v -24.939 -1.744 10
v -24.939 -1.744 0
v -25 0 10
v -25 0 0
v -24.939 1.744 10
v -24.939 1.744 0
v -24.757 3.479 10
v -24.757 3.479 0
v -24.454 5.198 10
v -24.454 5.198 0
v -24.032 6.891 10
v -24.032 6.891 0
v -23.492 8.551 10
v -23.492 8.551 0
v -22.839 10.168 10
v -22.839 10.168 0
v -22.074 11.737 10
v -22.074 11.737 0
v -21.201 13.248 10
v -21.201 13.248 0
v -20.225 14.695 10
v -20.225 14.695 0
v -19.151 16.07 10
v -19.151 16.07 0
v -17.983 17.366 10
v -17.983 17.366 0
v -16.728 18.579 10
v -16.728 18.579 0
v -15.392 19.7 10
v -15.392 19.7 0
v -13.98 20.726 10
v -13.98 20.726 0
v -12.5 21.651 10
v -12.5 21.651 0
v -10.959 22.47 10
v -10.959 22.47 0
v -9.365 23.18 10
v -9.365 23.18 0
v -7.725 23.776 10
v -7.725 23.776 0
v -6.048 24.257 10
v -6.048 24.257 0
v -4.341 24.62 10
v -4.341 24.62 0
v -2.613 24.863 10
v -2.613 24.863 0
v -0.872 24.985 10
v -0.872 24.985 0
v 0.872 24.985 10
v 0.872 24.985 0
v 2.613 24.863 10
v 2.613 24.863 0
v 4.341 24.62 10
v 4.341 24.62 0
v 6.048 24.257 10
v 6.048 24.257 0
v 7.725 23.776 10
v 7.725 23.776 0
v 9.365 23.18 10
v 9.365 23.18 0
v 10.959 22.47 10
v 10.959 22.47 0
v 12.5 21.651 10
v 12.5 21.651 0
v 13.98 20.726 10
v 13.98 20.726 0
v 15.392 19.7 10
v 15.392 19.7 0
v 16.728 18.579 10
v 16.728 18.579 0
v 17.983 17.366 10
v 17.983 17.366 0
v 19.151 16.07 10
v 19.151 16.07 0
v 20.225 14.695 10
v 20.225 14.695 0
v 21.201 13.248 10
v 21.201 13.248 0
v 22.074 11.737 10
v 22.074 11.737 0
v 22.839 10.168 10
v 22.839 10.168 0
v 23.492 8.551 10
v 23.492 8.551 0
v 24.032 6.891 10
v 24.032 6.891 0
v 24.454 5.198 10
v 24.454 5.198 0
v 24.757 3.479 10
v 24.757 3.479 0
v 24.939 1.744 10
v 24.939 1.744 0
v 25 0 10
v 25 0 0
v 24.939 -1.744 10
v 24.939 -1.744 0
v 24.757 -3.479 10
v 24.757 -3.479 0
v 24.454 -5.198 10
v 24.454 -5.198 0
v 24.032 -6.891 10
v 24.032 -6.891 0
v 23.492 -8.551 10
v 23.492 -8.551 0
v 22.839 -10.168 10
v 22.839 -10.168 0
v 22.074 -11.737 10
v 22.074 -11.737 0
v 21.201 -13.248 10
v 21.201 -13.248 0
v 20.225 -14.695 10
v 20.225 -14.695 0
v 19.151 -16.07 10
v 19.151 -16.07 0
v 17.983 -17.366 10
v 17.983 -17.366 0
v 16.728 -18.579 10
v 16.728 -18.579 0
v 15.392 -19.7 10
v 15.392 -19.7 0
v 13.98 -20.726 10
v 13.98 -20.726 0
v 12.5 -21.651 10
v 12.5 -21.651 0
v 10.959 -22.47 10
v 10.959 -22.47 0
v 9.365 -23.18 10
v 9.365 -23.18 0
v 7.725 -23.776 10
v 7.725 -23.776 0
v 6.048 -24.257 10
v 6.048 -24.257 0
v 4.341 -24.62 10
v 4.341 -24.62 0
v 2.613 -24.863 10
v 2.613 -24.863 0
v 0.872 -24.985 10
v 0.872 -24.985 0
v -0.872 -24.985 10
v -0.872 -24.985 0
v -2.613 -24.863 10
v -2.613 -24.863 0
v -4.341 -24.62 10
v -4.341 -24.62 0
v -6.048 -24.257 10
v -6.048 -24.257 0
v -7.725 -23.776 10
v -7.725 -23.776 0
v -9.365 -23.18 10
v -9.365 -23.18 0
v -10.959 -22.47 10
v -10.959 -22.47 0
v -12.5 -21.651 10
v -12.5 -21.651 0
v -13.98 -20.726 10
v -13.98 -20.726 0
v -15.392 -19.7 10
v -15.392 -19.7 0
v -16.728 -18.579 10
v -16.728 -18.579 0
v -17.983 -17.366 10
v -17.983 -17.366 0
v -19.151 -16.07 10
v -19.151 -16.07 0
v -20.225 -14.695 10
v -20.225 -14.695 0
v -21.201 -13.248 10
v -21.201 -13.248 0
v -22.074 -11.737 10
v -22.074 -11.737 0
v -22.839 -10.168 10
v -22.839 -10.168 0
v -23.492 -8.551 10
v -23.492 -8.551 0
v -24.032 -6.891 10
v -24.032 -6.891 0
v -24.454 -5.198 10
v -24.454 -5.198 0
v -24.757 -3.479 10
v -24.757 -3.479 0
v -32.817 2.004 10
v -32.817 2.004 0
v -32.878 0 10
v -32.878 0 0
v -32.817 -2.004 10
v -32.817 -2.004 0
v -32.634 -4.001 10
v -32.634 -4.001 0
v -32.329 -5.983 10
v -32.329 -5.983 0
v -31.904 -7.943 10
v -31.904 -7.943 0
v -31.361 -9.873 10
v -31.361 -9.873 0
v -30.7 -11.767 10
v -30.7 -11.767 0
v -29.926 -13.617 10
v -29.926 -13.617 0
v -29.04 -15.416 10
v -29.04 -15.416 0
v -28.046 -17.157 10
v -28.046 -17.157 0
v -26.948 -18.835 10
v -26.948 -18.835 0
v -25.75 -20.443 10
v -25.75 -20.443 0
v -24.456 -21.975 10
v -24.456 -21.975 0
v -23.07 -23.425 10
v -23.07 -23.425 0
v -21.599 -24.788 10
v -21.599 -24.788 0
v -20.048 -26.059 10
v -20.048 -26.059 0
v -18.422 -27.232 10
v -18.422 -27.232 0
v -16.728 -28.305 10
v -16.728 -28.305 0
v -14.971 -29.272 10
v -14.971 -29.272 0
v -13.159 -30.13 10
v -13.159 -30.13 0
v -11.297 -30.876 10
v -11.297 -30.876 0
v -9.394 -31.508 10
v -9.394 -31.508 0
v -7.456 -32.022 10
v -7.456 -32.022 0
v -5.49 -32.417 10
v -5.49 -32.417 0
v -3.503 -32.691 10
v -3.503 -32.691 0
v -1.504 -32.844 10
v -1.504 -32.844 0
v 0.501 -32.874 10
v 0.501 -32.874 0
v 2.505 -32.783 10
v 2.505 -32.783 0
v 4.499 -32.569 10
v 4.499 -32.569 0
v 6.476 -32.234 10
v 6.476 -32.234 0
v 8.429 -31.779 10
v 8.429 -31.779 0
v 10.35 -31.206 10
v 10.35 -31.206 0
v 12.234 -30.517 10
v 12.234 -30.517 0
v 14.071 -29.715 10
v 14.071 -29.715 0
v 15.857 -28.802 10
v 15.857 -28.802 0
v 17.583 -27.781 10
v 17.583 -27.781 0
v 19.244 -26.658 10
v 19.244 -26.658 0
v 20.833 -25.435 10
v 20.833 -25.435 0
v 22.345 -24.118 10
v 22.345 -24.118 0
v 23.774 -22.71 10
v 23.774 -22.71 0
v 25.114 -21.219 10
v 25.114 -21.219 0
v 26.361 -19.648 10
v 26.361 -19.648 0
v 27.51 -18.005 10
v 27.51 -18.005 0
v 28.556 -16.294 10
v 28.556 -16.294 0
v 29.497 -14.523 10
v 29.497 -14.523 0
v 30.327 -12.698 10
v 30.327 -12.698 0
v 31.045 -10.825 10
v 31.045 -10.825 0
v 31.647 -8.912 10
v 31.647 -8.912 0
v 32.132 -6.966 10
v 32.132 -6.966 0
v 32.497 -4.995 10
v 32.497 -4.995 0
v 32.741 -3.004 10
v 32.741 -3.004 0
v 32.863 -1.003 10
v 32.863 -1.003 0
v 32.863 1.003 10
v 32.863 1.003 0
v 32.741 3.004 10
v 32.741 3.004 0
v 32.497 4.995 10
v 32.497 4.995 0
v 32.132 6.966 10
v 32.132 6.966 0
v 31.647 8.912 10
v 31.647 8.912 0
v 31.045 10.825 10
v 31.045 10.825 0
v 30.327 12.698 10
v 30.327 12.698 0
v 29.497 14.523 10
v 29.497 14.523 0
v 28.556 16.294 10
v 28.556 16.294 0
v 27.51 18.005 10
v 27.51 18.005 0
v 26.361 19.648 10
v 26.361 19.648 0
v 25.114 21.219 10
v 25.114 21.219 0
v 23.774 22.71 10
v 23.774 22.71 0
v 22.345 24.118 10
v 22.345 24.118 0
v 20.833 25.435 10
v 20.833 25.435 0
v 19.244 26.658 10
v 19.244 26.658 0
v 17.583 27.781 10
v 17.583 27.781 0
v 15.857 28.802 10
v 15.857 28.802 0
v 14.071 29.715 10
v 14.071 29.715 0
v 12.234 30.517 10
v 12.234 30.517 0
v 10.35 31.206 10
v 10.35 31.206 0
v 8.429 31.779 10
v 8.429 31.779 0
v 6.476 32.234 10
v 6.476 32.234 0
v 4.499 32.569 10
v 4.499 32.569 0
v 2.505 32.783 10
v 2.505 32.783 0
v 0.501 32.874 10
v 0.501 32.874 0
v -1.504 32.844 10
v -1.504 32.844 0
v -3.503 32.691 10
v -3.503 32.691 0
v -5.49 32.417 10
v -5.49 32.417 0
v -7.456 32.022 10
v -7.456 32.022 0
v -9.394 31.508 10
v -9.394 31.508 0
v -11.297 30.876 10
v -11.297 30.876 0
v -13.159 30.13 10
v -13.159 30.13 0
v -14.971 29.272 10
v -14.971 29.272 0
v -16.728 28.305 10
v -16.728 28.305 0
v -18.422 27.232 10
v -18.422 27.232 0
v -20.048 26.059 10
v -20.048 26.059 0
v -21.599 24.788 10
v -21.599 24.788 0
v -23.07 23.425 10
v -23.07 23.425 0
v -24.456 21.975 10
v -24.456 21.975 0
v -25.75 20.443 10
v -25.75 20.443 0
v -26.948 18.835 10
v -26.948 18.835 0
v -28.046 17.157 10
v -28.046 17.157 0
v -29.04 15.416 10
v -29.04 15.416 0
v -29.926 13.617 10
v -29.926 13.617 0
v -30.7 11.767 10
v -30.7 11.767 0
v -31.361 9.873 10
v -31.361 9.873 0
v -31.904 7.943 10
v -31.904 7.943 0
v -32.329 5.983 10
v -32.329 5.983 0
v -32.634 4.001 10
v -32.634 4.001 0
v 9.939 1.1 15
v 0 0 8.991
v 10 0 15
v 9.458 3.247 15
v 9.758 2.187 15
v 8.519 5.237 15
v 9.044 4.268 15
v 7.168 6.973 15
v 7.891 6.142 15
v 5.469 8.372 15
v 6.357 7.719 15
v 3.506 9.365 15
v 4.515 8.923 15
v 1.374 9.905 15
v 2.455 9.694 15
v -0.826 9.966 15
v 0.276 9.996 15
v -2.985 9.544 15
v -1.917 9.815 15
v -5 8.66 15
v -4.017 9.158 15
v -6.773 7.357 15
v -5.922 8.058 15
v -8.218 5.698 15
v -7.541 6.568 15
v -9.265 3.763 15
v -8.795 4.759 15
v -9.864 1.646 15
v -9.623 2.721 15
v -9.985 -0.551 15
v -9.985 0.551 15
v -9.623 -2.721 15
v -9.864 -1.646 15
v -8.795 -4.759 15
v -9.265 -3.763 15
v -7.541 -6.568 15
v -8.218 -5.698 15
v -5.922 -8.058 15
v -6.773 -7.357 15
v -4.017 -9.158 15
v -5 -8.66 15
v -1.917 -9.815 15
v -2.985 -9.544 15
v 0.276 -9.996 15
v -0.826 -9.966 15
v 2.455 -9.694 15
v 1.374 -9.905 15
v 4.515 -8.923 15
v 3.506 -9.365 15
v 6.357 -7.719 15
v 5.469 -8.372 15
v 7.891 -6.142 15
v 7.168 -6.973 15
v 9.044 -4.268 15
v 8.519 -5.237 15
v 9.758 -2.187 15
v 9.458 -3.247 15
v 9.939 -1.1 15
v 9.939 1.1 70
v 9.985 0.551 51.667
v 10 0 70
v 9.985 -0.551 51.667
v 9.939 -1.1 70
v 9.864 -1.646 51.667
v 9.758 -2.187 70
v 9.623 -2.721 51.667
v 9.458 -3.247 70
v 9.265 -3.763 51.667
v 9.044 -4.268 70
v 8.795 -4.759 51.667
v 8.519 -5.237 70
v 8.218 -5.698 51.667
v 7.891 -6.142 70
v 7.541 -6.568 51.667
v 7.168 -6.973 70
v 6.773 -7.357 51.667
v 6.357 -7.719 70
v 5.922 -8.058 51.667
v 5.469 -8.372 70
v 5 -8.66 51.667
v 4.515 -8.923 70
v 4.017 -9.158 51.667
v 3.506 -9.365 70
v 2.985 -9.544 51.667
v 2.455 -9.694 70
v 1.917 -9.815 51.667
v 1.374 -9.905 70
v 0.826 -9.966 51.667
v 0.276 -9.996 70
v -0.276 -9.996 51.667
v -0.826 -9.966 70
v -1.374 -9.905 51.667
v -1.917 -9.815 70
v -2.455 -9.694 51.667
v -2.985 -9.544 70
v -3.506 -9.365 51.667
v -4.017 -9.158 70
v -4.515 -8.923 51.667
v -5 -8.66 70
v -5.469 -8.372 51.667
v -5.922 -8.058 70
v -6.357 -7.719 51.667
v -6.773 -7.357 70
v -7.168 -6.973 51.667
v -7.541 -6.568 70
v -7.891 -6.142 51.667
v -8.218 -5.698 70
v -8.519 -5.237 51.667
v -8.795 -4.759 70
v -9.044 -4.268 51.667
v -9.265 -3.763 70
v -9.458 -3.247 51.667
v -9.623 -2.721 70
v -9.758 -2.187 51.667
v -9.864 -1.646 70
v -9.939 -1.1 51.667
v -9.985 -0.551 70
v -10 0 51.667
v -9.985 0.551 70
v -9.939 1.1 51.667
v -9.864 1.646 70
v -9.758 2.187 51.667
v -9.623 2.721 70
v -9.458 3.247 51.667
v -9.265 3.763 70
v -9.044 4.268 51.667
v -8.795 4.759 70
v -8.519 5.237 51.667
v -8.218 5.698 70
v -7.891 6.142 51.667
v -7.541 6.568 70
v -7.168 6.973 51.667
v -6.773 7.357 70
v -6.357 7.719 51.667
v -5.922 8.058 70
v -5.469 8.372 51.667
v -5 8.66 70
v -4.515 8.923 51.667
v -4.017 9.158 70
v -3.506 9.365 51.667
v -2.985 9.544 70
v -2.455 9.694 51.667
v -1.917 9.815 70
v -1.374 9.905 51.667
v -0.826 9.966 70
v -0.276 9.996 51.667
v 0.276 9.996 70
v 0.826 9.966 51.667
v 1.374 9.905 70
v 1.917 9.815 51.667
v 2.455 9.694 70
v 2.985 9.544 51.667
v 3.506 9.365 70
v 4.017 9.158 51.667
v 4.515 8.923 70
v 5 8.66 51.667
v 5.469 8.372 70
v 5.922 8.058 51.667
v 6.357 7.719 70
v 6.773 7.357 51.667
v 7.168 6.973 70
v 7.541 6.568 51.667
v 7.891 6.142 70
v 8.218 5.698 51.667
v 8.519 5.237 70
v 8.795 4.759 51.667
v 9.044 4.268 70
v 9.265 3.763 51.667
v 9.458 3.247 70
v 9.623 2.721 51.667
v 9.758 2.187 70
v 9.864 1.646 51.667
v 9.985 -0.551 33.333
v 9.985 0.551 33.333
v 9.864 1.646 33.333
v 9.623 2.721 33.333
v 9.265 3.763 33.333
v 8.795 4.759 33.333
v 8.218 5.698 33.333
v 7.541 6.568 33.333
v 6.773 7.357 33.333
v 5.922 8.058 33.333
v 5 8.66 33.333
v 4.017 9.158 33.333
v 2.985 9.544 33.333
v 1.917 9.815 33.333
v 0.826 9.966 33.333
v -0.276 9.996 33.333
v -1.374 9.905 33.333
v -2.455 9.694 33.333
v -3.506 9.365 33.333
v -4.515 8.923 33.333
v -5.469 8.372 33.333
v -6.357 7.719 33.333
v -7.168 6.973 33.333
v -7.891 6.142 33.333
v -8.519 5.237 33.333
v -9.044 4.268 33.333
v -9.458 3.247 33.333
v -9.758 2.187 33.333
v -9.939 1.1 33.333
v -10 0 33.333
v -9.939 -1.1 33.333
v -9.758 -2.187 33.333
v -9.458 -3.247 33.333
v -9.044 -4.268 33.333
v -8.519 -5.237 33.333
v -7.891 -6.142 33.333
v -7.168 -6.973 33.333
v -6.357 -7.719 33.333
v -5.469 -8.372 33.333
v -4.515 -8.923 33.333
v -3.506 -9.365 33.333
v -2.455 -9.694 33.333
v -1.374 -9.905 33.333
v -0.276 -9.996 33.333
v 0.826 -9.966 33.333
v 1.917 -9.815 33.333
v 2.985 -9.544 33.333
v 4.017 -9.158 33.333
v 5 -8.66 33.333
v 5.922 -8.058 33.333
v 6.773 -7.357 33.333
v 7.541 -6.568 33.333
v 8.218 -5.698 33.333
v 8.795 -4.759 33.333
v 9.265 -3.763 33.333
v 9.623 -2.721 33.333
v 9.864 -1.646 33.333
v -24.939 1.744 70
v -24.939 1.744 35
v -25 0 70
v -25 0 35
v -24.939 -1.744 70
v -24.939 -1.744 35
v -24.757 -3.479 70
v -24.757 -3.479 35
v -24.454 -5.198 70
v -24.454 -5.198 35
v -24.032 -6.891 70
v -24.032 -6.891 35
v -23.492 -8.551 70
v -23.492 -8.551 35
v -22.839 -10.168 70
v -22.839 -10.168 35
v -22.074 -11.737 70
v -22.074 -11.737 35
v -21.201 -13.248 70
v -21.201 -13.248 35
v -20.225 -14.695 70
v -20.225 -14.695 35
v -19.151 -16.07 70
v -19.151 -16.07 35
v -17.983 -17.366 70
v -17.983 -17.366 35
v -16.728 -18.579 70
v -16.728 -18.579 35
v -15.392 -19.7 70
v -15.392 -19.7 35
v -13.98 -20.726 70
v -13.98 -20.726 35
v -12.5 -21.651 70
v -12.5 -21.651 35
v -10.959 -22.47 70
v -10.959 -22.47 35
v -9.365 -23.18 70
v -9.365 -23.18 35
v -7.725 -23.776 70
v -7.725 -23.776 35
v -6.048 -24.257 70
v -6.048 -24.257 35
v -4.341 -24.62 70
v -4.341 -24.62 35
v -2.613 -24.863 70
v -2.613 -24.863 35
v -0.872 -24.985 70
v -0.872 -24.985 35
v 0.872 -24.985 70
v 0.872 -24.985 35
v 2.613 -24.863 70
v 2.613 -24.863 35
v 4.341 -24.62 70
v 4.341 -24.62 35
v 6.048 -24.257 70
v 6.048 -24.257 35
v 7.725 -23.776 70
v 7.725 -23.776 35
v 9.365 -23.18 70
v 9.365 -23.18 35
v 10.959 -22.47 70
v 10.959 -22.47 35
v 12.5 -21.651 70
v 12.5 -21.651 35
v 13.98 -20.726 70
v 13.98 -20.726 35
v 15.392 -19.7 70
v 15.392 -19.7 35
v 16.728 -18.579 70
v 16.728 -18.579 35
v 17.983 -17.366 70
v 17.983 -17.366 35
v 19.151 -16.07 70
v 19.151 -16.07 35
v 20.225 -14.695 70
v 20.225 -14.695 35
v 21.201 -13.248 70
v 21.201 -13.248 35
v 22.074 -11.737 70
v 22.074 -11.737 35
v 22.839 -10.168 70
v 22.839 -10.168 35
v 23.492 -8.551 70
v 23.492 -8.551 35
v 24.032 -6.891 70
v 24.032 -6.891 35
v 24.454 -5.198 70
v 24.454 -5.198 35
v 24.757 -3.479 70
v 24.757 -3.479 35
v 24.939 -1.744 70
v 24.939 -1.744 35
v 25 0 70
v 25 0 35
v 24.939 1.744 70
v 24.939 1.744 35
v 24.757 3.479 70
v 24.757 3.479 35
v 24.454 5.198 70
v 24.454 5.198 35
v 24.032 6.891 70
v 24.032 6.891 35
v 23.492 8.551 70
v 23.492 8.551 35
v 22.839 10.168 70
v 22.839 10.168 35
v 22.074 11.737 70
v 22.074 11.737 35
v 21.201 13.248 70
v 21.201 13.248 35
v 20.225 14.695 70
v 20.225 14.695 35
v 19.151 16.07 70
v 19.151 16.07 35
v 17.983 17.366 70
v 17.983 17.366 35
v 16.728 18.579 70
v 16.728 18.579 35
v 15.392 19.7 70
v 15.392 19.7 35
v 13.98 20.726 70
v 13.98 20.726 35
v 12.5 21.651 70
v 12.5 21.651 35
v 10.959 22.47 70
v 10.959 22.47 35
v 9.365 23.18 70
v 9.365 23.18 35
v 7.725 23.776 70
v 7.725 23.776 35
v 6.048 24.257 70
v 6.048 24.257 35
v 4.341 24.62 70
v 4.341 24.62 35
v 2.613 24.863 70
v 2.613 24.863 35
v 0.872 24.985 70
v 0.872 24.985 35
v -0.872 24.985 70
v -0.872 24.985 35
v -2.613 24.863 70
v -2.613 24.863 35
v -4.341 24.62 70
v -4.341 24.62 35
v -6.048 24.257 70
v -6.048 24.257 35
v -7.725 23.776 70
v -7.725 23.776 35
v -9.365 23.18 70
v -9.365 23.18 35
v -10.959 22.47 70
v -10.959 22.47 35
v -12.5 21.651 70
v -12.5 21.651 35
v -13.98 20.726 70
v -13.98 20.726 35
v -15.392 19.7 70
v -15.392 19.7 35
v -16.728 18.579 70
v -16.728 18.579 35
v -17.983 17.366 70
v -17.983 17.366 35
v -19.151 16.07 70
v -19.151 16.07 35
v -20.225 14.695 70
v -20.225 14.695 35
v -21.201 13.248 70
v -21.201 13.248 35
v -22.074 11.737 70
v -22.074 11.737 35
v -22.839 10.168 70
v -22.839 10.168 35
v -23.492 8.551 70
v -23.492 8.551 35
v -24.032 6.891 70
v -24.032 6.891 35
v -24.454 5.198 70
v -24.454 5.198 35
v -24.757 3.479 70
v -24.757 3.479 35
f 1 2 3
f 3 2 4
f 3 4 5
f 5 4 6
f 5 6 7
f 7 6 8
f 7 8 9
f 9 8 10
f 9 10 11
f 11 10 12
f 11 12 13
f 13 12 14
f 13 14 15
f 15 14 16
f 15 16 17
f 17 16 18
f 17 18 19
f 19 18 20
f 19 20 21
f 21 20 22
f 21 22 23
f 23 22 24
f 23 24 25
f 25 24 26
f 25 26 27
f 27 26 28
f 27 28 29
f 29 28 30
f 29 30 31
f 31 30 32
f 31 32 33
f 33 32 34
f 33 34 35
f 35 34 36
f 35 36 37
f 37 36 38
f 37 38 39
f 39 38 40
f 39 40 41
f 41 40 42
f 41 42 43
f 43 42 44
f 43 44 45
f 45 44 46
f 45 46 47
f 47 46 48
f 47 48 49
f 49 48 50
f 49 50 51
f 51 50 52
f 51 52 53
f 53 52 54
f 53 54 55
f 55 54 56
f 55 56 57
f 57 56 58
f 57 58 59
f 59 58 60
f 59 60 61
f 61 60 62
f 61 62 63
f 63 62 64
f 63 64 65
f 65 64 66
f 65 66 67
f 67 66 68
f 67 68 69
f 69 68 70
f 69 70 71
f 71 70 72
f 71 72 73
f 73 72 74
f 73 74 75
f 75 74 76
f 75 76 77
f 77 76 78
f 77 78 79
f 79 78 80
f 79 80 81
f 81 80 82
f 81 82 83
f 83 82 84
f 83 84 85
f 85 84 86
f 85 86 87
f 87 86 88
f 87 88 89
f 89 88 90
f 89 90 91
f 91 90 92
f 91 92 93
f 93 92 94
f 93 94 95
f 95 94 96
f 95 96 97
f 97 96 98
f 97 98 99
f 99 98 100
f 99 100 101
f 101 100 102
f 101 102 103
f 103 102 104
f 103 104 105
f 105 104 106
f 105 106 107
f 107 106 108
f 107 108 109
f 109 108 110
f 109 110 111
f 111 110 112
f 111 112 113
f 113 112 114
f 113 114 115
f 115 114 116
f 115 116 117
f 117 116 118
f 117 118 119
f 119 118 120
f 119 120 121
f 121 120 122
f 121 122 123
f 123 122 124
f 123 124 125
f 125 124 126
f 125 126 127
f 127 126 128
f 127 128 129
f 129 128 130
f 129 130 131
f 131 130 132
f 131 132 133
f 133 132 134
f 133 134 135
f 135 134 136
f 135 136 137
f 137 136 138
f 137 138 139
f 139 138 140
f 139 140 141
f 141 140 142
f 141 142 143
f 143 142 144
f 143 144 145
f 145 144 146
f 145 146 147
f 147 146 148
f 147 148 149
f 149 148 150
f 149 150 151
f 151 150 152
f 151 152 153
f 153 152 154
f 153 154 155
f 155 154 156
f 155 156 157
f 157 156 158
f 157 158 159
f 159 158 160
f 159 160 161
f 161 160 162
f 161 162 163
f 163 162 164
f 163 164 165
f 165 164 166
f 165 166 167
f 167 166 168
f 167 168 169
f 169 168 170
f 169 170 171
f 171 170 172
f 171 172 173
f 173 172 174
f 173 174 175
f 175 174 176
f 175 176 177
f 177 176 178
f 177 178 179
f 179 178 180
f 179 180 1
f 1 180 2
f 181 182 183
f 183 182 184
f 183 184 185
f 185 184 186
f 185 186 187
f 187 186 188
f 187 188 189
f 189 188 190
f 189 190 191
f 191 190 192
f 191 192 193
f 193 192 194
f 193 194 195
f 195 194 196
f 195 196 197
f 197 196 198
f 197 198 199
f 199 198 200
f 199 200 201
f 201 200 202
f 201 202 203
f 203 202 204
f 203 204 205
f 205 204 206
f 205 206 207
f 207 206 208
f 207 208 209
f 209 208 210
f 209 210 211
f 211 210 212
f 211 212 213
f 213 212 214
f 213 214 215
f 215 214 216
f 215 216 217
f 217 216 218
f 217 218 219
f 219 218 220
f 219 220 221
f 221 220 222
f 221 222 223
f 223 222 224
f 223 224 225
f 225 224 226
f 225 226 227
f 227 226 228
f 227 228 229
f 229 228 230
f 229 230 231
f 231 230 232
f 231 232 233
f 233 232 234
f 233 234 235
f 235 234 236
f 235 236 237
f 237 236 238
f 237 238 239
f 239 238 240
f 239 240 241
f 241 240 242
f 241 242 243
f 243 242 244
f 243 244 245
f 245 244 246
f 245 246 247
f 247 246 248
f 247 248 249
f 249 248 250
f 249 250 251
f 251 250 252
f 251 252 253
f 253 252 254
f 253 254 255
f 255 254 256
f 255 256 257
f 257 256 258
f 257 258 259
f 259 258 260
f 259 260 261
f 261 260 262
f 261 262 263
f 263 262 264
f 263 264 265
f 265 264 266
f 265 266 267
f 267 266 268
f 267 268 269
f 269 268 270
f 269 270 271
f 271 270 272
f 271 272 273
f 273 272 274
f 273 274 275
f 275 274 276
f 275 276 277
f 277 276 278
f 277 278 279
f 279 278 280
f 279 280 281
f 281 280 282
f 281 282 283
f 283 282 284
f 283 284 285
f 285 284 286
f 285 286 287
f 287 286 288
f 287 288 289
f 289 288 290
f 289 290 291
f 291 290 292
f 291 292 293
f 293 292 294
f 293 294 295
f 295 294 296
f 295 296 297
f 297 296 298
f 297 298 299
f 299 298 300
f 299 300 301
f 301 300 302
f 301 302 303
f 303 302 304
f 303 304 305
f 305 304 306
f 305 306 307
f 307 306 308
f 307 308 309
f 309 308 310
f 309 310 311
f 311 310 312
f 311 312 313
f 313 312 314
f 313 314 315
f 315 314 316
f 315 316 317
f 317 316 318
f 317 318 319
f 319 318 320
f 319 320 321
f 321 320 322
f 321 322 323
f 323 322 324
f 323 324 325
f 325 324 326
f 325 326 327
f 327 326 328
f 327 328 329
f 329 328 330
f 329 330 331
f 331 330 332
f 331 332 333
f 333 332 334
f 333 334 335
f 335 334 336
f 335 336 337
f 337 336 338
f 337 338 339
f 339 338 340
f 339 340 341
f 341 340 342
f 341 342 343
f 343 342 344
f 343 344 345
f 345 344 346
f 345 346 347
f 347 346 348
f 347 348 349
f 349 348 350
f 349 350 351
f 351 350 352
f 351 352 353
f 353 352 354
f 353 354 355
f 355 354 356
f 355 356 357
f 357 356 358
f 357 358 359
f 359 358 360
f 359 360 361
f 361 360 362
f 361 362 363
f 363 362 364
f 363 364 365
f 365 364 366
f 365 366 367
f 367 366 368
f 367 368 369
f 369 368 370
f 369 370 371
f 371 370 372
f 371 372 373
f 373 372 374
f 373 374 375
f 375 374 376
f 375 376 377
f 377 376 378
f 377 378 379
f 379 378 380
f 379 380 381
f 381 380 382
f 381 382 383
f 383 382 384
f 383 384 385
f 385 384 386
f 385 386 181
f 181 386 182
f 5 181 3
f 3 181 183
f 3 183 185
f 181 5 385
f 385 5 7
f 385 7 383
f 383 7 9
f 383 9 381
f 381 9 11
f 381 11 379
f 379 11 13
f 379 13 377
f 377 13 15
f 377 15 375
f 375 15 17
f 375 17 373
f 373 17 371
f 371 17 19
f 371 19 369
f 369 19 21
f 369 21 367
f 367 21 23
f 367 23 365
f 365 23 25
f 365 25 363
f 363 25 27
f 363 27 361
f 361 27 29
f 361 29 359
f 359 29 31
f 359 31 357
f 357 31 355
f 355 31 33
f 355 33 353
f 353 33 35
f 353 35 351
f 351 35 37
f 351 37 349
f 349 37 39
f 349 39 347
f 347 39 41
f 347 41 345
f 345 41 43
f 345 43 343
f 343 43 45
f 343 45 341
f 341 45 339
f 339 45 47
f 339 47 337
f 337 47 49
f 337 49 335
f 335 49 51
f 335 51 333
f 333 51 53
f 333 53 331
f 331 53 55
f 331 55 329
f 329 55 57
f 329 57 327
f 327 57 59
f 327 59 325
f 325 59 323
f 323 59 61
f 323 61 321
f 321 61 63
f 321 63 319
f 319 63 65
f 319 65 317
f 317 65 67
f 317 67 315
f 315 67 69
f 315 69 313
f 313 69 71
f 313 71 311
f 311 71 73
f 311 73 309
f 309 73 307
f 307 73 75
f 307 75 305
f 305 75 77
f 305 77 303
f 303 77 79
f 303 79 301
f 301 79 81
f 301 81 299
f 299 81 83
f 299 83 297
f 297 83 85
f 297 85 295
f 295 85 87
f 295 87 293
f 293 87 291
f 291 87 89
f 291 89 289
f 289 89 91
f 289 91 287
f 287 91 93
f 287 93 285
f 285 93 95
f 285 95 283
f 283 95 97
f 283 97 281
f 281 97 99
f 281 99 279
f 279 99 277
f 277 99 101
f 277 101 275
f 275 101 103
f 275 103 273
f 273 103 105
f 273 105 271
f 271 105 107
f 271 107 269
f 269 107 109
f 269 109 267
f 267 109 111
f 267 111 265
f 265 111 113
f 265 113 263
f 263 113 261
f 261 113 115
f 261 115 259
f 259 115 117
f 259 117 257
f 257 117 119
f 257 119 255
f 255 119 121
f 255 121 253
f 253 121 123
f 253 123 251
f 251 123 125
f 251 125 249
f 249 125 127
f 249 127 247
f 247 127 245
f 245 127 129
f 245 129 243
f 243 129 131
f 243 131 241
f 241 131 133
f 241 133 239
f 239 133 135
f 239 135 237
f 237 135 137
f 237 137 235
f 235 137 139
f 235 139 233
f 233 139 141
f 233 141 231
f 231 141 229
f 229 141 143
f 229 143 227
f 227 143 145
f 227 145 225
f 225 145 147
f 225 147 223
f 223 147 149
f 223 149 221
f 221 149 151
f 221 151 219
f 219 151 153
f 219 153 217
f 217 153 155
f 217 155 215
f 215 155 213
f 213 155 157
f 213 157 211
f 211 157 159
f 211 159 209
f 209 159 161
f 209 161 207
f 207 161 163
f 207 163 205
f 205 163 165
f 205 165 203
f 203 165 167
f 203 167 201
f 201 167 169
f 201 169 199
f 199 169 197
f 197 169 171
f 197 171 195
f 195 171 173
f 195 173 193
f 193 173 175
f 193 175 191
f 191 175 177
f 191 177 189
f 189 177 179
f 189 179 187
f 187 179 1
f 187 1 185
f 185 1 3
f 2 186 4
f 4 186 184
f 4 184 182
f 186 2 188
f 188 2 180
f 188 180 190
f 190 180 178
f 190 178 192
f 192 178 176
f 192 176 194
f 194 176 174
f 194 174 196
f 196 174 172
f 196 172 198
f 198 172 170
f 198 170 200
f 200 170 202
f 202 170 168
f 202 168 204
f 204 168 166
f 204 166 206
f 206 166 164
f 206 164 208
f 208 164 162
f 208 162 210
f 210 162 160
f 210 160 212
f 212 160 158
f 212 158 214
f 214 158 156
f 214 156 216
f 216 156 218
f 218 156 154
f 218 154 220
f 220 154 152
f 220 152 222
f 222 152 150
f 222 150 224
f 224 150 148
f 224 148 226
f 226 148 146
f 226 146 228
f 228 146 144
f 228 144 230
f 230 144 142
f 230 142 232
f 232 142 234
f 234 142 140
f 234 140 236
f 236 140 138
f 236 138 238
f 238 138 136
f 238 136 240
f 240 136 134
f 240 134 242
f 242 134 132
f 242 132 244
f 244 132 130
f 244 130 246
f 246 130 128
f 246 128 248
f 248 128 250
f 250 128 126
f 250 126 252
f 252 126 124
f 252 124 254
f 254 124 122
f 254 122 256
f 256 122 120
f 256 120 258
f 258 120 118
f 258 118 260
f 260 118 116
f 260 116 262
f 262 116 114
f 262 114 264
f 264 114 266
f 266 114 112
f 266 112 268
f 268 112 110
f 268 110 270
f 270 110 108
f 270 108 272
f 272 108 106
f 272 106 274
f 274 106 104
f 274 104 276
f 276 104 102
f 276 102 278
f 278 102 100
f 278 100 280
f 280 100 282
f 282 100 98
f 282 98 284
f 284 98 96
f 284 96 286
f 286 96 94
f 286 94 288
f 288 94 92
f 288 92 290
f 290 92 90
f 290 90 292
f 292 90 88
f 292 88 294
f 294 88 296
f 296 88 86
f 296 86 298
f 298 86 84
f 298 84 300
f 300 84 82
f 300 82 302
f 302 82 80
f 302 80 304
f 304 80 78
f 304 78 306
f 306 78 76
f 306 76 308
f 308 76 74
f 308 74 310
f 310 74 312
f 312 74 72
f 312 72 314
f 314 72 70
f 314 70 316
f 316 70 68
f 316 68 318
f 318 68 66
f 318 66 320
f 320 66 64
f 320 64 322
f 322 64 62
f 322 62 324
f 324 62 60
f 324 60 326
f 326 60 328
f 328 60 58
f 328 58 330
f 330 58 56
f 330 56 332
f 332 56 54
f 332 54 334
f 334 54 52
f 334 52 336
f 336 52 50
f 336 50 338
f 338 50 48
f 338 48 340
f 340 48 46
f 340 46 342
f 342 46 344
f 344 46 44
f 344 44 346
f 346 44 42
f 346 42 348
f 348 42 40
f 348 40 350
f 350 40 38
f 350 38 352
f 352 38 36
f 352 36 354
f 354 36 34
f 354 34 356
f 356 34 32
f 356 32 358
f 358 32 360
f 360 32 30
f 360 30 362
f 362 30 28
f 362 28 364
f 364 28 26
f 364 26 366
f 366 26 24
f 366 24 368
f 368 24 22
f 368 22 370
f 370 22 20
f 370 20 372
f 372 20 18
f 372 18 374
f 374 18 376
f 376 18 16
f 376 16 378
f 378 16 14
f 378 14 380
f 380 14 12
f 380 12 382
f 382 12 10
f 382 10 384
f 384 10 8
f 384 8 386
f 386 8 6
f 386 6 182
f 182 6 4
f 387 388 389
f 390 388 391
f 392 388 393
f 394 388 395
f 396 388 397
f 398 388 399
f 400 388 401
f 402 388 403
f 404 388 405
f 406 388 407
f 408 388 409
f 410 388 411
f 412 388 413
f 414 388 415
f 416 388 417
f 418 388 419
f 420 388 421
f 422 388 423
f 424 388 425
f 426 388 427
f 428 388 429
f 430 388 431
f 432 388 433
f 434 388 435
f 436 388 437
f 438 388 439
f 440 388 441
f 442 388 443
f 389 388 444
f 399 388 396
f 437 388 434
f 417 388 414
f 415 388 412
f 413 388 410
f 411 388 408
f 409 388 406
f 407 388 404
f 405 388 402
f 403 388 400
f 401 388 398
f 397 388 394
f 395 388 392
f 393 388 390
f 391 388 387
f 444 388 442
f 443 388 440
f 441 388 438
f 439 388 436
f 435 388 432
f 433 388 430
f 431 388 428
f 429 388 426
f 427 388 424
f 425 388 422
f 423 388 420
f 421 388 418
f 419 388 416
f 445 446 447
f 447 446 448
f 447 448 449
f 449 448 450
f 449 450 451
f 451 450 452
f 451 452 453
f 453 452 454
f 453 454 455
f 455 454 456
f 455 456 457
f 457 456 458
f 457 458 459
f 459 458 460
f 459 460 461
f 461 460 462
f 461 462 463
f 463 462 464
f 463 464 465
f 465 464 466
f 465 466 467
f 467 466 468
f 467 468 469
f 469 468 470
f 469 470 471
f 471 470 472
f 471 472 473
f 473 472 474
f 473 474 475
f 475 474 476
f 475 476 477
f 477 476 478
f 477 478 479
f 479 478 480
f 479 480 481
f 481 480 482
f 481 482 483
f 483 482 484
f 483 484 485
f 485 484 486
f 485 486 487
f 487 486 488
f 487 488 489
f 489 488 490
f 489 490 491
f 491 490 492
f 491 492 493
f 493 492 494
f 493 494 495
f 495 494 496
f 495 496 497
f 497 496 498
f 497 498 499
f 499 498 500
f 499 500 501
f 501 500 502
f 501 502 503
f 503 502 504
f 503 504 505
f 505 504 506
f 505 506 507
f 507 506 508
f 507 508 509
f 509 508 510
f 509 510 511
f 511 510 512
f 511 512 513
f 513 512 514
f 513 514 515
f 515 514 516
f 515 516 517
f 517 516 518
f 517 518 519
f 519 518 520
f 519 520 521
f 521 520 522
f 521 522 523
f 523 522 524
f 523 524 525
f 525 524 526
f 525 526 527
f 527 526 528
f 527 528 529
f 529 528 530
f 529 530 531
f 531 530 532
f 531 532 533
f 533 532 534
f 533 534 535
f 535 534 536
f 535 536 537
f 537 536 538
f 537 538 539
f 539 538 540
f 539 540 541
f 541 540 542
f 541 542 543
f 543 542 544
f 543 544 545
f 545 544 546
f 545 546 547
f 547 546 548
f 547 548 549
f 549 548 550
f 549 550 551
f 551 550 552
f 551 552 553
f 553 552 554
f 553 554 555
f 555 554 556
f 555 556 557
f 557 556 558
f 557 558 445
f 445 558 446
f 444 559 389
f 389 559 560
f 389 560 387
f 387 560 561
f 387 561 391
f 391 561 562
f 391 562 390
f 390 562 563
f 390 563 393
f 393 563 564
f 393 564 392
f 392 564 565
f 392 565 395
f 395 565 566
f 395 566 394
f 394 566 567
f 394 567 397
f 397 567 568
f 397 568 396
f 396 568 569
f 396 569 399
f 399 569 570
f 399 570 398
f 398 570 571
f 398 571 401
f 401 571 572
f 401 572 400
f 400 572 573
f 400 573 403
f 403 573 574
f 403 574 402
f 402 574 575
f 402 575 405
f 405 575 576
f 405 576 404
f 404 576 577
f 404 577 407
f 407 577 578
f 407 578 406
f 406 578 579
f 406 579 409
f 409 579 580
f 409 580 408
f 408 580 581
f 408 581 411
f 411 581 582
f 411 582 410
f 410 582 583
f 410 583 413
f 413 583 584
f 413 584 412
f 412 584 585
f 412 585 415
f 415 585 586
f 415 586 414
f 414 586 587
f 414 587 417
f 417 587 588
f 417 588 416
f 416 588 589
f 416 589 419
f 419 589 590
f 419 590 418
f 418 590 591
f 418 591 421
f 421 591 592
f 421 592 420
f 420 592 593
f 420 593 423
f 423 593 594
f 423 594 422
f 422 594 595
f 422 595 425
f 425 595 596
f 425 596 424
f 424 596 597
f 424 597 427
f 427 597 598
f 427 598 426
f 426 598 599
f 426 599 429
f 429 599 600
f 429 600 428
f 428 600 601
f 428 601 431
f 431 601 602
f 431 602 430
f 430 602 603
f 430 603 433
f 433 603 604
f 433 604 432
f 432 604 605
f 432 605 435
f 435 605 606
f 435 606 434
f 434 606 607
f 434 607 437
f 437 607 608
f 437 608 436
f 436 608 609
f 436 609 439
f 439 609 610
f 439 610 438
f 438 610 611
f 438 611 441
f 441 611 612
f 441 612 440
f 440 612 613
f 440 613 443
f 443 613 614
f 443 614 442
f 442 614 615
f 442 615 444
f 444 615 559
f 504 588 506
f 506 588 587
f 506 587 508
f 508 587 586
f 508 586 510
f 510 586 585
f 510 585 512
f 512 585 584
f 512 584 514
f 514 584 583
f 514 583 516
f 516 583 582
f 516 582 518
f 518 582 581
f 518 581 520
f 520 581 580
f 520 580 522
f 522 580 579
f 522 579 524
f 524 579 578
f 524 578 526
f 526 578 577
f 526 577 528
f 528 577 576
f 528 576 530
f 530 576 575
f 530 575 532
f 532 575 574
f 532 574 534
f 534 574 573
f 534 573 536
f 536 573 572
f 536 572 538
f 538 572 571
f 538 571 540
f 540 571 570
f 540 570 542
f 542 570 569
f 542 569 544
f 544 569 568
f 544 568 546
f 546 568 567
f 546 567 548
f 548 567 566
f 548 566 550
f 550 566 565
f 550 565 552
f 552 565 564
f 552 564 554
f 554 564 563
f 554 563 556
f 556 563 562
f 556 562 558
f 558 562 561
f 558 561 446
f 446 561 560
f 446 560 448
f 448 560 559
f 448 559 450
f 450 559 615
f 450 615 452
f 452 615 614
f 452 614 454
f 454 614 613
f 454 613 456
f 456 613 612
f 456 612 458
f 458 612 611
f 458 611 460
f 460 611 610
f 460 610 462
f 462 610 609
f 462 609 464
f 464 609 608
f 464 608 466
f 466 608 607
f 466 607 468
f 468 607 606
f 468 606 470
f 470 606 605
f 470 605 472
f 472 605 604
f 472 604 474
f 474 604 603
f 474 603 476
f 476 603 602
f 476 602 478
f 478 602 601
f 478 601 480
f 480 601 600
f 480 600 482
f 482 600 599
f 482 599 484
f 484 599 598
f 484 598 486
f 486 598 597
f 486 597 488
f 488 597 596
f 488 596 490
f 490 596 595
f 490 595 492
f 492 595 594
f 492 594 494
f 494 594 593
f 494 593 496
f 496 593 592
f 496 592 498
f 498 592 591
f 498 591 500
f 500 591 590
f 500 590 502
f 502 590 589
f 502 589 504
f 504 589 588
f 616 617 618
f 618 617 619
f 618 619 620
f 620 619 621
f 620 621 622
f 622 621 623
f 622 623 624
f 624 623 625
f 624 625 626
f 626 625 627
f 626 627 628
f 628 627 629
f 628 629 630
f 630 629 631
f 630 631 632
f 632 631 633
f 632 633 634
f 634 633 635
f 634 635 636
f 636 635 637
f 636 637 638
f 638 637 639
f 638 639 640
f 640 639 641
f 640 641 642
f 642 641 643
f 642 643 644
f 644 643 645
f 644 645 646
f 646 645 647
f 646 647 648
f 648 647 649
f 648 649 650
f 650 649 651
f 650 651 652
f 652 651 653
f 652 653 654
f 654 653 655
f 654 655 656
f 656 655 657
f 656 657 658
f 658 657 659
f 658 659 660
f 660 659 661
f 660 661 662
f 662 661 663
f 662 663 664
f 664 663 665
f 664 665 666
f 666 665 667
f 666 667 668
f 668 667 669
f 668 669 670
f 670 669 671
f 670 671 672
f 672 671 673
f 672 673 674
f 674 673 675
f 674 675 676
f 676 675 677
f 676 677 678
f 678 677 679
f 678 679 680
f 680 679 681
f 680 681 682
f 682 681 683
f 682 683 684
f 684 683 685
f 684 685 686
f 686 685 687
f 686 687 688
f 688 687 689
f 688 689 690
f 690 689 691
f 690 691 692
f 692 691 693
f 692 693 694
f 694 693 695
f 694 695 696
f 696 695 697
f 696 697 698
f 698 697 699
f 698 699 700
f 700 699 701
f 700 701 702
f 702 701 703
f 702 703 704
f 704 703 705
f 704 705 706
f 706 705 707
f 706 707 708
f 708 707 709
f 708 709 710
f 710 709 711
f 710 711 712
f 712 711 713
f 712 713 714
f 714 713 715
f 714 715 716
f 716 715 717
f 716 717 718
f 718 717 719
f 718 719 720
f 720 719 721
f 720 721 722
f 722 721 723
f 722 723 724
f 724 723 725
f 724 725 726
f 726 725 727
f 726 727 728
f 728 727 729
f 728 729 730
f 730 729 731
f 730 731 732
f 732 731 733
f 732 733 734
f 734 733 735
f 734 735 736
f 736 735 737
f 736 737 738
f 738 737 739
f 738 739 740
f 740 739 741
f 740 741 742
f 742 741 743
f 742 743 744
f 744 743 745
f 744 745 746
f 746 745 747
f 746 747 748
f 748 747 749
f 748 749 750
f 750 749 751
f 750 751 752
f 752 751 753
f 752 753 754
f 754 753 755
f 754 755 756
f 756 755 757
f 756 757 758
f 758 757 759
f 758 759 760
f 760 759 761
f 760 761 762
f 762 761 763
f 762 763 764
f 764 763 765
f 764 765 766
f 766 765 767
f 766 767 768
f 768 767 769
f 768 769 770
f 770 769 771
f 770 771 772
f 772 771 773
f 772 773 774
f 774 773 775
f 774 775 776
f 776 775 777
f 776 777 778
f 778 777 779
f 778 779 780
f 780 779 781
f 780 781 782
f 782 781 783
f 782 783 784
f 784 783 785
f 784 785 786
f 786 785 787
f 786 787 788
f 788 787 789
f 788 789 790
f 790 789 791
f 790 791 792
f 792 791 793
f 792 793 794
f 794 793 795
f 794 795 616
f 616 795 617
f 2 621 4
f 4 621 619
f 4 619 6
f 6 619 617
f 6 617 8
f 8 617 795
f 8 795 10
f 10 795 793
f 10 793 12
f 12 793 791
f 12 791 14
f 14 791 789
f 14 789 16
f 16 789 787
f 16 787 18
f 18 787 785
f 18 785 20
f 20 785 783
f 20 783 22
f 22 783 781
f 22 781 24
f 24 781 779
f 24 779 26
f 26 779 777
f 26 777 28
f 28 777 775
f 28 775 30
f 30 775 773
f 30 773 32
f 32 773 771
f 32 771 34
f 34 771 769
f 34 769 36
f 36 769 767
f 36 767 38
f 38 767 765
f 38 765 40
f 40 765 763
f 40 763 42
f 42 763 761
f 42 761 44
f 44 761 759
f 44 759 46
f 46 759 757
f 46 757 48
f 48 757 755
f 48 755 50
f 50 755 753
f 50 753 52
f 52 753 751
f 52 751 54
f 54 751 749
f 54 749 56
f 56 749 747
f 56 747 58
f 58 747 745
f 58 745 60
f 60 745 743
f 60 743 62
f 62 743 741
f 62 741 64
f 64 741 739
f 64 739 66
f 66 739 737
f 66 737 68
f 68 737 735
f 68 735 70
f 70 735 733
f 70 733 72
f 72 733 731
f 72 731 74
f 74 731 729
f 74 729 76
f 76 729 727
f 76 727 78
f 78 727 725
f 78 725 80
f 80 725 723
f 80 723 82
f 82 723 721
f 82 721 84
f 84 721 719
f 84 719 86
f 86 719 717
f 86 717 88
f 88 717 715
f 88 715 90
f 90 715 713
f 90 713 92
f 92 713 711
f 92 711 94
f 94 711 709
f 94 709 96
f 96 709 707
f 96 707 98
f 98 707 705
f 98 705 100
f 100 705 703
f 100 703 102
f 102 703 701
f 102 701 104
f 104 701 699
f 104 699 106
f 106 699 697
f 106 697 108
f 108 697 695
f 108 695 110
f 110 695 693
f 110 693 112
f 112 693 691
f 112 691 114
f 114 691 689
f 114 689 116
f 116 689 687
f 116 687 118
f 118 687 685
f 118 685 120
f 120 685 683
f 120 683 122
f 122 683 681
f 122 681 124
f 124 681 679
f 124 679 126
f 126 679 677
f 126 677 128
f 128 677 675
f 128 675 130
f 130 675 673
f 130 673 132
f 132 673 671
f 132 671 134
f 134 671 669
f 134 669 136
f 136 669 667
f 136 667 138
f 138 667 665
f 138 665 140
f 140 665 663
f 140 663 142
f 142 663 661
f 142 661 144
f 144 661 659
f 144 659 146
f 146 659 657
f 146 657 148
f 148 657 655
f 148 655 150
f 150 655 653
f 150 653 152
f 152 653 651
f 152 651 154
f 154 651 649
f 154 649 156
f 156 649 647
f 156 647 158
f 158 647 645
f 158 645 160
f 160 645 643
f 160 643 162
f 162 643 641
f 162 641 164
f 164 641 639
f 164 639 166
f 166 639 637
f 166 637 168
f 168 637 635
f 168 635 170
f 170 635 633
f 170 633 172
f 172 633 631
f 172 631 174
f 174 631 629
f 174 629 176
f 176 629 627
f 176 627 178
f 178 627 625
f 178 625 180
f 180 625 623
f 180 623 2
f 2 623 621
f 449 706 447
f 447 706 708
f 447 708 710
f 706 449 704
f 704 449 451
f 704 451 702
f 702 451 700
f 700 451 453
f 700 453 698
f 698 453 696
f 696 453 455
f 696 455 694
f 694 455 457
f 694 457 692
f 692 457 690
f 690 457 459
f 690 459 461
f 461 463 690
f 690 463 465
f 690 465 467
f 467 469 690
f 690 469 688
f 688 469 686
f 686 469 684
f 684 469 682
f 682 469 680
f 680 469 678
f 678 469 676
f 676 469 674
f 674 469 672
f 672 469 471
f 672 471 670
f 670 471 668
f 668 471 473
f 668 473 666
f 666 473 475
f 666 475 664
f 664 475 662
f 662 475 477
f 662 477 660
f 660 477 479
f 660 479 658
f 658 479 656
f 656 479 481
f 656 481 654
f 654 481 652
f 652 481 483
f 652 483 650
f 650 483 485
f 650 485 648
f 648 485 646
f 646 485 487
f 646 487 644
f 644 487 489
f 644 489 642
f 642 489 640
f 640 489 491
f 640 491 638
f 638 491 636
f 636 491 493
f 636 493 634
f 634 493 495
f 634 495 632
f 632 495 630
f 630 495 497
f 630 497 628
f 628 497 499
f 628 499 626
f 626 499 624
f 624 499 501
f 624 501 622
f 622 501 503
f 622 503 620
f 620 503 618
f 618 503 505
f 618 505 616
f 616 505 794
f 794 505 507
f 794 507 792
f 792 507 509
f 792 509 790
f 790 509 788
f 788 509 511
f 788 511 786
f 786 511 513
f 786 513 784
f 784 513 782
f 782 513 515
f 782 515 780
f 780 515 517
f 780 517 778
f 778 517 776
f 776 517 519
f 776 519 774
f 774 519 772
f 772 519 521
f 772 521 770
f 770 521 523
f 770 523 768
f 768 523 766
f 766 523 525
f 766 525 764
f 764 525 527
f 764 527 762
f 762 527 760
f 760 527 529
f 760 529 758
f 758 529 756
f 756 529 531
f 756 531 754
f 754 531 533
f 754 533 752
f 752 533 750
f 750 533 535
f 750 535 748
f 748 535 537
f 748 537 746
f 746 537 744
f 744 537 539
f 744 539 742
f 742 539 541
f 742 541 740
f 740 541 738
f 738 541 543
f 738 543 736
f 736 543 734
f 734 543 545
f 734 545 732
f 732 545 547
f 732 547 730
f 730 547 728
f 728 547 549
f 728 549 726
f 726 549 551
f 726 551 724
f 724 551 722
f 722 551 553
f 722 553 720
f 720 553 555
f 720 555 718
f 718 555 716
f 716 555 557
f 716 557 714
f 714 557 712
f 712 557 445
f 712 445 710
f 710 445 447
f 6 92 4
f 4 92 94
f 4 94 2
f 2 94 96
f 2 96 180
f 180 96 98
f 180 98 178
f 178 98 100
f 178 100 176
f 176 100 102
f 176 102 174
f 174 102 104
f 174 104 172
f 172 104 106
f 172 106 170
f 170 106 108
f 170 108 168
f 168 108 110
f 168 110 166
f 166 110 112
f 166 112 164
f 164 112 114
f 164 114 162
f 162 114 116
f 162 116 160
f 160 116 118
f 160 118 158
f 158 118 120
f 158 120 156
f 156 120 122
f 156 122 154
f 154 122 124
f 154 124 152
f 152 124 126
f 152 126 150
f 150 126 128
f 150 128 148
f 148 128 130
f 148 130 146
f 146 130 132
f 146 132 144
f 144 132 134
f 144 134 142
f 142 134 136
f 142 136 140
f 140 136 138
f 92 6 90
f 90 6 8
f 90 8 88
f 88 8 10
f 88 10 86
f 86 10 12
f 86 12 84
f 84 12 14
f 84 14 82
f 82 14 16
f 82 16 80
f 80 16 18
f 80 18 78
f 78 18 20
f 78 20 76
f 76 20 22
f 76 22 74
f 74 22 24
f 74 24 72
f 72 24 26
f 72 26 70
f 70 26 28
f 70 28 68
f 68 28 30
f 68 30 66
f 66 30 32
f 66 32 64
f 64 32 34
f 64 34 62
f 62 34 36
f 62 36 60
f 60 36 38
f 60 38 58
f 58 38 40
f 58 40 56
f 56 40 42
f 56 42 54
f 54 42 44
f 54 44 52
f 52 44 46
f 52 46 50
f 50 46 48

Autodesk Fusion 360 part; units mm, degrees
sketch "Sketch1" plane through (0, 0, 0) normal (0, 0, 1) x (1, 0, 0)
  circle A0 centre (0, 0) radius 25
  circle A1 centre (0, 0) radius 32.8781
  dimension "d1" = 50
  dimension "d10" = 7.8781
extrude "Extrude2" add sketch "Sketch1" along normal blind 10 makes body 1
extrude "Extrude1" add sketch "Sketch1" along normal blind 70 separate body contours A0 makes body 2
hole "Hole2" at (0, 0, 70) direction (0, 0, -1) diameter 20 depth 55 tip angle 118 bodies 2
hole "Hole1" [suppressed]
